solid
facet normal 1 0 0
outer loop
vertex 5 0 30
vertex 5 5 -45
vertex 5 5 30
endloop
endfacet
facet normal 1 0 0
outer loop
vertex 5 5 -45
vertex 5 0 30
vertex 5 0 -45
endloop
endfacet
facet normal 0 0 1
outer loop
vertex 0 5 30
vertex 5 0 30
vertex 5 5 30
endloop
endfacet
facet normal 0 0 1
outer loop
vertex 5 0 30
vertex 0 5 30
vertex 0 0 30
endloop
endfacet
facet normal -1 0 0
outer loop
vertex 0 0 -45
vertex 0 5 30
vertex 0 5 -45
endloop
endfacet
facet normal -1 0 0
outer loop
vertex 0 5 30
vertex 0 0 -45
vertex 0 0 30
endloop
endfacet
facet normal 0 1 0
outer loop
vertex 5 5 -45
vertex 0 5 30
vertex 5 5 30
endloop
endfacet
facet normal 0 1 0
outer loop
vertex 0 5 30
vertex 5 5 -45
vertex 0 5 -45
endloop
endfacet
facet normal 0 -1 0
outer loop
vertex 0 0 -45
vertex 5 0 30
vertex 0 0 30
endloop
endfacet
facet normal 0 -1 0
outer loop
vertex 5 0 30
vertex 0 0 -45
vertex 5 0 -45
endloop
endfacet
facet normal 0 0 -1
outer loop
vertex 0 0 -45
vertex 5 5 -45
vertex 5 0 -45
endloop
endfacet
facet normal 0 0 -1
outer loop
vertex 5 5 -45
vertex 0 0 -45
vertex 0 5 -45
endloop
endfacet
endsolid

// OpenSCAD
// Parameters
thickness = 5;         // Thickness of the bracket
short_arm = 30;        // Length of the shorter arm
long_arm = 50;         // Length of the longer arm
corner_radius = 5;     // Radius for the rounded outer corner

module L_bracket() {
    difference() {
        union() {
            // Vertical arm (shorter)
            cube([thickness, thickness, short_arm]);

            // Horizontal arm (longer)
            translate([0, 0, -long_arm + thickness])
                cube([thickness, thickness, long_arm]);
        }

        // Cut the outer corner to make it rounded
        translate([-corner_radius, -corner_radius, -long_arm + thickness])
            rotate([0, 90, 0])
                cylinder(h = thickness + 1, r = corner_radius, $fn = 50);
    }
}

// Position the bracket upright as described
rotate([0, 0, 0])
    L_bracket();
